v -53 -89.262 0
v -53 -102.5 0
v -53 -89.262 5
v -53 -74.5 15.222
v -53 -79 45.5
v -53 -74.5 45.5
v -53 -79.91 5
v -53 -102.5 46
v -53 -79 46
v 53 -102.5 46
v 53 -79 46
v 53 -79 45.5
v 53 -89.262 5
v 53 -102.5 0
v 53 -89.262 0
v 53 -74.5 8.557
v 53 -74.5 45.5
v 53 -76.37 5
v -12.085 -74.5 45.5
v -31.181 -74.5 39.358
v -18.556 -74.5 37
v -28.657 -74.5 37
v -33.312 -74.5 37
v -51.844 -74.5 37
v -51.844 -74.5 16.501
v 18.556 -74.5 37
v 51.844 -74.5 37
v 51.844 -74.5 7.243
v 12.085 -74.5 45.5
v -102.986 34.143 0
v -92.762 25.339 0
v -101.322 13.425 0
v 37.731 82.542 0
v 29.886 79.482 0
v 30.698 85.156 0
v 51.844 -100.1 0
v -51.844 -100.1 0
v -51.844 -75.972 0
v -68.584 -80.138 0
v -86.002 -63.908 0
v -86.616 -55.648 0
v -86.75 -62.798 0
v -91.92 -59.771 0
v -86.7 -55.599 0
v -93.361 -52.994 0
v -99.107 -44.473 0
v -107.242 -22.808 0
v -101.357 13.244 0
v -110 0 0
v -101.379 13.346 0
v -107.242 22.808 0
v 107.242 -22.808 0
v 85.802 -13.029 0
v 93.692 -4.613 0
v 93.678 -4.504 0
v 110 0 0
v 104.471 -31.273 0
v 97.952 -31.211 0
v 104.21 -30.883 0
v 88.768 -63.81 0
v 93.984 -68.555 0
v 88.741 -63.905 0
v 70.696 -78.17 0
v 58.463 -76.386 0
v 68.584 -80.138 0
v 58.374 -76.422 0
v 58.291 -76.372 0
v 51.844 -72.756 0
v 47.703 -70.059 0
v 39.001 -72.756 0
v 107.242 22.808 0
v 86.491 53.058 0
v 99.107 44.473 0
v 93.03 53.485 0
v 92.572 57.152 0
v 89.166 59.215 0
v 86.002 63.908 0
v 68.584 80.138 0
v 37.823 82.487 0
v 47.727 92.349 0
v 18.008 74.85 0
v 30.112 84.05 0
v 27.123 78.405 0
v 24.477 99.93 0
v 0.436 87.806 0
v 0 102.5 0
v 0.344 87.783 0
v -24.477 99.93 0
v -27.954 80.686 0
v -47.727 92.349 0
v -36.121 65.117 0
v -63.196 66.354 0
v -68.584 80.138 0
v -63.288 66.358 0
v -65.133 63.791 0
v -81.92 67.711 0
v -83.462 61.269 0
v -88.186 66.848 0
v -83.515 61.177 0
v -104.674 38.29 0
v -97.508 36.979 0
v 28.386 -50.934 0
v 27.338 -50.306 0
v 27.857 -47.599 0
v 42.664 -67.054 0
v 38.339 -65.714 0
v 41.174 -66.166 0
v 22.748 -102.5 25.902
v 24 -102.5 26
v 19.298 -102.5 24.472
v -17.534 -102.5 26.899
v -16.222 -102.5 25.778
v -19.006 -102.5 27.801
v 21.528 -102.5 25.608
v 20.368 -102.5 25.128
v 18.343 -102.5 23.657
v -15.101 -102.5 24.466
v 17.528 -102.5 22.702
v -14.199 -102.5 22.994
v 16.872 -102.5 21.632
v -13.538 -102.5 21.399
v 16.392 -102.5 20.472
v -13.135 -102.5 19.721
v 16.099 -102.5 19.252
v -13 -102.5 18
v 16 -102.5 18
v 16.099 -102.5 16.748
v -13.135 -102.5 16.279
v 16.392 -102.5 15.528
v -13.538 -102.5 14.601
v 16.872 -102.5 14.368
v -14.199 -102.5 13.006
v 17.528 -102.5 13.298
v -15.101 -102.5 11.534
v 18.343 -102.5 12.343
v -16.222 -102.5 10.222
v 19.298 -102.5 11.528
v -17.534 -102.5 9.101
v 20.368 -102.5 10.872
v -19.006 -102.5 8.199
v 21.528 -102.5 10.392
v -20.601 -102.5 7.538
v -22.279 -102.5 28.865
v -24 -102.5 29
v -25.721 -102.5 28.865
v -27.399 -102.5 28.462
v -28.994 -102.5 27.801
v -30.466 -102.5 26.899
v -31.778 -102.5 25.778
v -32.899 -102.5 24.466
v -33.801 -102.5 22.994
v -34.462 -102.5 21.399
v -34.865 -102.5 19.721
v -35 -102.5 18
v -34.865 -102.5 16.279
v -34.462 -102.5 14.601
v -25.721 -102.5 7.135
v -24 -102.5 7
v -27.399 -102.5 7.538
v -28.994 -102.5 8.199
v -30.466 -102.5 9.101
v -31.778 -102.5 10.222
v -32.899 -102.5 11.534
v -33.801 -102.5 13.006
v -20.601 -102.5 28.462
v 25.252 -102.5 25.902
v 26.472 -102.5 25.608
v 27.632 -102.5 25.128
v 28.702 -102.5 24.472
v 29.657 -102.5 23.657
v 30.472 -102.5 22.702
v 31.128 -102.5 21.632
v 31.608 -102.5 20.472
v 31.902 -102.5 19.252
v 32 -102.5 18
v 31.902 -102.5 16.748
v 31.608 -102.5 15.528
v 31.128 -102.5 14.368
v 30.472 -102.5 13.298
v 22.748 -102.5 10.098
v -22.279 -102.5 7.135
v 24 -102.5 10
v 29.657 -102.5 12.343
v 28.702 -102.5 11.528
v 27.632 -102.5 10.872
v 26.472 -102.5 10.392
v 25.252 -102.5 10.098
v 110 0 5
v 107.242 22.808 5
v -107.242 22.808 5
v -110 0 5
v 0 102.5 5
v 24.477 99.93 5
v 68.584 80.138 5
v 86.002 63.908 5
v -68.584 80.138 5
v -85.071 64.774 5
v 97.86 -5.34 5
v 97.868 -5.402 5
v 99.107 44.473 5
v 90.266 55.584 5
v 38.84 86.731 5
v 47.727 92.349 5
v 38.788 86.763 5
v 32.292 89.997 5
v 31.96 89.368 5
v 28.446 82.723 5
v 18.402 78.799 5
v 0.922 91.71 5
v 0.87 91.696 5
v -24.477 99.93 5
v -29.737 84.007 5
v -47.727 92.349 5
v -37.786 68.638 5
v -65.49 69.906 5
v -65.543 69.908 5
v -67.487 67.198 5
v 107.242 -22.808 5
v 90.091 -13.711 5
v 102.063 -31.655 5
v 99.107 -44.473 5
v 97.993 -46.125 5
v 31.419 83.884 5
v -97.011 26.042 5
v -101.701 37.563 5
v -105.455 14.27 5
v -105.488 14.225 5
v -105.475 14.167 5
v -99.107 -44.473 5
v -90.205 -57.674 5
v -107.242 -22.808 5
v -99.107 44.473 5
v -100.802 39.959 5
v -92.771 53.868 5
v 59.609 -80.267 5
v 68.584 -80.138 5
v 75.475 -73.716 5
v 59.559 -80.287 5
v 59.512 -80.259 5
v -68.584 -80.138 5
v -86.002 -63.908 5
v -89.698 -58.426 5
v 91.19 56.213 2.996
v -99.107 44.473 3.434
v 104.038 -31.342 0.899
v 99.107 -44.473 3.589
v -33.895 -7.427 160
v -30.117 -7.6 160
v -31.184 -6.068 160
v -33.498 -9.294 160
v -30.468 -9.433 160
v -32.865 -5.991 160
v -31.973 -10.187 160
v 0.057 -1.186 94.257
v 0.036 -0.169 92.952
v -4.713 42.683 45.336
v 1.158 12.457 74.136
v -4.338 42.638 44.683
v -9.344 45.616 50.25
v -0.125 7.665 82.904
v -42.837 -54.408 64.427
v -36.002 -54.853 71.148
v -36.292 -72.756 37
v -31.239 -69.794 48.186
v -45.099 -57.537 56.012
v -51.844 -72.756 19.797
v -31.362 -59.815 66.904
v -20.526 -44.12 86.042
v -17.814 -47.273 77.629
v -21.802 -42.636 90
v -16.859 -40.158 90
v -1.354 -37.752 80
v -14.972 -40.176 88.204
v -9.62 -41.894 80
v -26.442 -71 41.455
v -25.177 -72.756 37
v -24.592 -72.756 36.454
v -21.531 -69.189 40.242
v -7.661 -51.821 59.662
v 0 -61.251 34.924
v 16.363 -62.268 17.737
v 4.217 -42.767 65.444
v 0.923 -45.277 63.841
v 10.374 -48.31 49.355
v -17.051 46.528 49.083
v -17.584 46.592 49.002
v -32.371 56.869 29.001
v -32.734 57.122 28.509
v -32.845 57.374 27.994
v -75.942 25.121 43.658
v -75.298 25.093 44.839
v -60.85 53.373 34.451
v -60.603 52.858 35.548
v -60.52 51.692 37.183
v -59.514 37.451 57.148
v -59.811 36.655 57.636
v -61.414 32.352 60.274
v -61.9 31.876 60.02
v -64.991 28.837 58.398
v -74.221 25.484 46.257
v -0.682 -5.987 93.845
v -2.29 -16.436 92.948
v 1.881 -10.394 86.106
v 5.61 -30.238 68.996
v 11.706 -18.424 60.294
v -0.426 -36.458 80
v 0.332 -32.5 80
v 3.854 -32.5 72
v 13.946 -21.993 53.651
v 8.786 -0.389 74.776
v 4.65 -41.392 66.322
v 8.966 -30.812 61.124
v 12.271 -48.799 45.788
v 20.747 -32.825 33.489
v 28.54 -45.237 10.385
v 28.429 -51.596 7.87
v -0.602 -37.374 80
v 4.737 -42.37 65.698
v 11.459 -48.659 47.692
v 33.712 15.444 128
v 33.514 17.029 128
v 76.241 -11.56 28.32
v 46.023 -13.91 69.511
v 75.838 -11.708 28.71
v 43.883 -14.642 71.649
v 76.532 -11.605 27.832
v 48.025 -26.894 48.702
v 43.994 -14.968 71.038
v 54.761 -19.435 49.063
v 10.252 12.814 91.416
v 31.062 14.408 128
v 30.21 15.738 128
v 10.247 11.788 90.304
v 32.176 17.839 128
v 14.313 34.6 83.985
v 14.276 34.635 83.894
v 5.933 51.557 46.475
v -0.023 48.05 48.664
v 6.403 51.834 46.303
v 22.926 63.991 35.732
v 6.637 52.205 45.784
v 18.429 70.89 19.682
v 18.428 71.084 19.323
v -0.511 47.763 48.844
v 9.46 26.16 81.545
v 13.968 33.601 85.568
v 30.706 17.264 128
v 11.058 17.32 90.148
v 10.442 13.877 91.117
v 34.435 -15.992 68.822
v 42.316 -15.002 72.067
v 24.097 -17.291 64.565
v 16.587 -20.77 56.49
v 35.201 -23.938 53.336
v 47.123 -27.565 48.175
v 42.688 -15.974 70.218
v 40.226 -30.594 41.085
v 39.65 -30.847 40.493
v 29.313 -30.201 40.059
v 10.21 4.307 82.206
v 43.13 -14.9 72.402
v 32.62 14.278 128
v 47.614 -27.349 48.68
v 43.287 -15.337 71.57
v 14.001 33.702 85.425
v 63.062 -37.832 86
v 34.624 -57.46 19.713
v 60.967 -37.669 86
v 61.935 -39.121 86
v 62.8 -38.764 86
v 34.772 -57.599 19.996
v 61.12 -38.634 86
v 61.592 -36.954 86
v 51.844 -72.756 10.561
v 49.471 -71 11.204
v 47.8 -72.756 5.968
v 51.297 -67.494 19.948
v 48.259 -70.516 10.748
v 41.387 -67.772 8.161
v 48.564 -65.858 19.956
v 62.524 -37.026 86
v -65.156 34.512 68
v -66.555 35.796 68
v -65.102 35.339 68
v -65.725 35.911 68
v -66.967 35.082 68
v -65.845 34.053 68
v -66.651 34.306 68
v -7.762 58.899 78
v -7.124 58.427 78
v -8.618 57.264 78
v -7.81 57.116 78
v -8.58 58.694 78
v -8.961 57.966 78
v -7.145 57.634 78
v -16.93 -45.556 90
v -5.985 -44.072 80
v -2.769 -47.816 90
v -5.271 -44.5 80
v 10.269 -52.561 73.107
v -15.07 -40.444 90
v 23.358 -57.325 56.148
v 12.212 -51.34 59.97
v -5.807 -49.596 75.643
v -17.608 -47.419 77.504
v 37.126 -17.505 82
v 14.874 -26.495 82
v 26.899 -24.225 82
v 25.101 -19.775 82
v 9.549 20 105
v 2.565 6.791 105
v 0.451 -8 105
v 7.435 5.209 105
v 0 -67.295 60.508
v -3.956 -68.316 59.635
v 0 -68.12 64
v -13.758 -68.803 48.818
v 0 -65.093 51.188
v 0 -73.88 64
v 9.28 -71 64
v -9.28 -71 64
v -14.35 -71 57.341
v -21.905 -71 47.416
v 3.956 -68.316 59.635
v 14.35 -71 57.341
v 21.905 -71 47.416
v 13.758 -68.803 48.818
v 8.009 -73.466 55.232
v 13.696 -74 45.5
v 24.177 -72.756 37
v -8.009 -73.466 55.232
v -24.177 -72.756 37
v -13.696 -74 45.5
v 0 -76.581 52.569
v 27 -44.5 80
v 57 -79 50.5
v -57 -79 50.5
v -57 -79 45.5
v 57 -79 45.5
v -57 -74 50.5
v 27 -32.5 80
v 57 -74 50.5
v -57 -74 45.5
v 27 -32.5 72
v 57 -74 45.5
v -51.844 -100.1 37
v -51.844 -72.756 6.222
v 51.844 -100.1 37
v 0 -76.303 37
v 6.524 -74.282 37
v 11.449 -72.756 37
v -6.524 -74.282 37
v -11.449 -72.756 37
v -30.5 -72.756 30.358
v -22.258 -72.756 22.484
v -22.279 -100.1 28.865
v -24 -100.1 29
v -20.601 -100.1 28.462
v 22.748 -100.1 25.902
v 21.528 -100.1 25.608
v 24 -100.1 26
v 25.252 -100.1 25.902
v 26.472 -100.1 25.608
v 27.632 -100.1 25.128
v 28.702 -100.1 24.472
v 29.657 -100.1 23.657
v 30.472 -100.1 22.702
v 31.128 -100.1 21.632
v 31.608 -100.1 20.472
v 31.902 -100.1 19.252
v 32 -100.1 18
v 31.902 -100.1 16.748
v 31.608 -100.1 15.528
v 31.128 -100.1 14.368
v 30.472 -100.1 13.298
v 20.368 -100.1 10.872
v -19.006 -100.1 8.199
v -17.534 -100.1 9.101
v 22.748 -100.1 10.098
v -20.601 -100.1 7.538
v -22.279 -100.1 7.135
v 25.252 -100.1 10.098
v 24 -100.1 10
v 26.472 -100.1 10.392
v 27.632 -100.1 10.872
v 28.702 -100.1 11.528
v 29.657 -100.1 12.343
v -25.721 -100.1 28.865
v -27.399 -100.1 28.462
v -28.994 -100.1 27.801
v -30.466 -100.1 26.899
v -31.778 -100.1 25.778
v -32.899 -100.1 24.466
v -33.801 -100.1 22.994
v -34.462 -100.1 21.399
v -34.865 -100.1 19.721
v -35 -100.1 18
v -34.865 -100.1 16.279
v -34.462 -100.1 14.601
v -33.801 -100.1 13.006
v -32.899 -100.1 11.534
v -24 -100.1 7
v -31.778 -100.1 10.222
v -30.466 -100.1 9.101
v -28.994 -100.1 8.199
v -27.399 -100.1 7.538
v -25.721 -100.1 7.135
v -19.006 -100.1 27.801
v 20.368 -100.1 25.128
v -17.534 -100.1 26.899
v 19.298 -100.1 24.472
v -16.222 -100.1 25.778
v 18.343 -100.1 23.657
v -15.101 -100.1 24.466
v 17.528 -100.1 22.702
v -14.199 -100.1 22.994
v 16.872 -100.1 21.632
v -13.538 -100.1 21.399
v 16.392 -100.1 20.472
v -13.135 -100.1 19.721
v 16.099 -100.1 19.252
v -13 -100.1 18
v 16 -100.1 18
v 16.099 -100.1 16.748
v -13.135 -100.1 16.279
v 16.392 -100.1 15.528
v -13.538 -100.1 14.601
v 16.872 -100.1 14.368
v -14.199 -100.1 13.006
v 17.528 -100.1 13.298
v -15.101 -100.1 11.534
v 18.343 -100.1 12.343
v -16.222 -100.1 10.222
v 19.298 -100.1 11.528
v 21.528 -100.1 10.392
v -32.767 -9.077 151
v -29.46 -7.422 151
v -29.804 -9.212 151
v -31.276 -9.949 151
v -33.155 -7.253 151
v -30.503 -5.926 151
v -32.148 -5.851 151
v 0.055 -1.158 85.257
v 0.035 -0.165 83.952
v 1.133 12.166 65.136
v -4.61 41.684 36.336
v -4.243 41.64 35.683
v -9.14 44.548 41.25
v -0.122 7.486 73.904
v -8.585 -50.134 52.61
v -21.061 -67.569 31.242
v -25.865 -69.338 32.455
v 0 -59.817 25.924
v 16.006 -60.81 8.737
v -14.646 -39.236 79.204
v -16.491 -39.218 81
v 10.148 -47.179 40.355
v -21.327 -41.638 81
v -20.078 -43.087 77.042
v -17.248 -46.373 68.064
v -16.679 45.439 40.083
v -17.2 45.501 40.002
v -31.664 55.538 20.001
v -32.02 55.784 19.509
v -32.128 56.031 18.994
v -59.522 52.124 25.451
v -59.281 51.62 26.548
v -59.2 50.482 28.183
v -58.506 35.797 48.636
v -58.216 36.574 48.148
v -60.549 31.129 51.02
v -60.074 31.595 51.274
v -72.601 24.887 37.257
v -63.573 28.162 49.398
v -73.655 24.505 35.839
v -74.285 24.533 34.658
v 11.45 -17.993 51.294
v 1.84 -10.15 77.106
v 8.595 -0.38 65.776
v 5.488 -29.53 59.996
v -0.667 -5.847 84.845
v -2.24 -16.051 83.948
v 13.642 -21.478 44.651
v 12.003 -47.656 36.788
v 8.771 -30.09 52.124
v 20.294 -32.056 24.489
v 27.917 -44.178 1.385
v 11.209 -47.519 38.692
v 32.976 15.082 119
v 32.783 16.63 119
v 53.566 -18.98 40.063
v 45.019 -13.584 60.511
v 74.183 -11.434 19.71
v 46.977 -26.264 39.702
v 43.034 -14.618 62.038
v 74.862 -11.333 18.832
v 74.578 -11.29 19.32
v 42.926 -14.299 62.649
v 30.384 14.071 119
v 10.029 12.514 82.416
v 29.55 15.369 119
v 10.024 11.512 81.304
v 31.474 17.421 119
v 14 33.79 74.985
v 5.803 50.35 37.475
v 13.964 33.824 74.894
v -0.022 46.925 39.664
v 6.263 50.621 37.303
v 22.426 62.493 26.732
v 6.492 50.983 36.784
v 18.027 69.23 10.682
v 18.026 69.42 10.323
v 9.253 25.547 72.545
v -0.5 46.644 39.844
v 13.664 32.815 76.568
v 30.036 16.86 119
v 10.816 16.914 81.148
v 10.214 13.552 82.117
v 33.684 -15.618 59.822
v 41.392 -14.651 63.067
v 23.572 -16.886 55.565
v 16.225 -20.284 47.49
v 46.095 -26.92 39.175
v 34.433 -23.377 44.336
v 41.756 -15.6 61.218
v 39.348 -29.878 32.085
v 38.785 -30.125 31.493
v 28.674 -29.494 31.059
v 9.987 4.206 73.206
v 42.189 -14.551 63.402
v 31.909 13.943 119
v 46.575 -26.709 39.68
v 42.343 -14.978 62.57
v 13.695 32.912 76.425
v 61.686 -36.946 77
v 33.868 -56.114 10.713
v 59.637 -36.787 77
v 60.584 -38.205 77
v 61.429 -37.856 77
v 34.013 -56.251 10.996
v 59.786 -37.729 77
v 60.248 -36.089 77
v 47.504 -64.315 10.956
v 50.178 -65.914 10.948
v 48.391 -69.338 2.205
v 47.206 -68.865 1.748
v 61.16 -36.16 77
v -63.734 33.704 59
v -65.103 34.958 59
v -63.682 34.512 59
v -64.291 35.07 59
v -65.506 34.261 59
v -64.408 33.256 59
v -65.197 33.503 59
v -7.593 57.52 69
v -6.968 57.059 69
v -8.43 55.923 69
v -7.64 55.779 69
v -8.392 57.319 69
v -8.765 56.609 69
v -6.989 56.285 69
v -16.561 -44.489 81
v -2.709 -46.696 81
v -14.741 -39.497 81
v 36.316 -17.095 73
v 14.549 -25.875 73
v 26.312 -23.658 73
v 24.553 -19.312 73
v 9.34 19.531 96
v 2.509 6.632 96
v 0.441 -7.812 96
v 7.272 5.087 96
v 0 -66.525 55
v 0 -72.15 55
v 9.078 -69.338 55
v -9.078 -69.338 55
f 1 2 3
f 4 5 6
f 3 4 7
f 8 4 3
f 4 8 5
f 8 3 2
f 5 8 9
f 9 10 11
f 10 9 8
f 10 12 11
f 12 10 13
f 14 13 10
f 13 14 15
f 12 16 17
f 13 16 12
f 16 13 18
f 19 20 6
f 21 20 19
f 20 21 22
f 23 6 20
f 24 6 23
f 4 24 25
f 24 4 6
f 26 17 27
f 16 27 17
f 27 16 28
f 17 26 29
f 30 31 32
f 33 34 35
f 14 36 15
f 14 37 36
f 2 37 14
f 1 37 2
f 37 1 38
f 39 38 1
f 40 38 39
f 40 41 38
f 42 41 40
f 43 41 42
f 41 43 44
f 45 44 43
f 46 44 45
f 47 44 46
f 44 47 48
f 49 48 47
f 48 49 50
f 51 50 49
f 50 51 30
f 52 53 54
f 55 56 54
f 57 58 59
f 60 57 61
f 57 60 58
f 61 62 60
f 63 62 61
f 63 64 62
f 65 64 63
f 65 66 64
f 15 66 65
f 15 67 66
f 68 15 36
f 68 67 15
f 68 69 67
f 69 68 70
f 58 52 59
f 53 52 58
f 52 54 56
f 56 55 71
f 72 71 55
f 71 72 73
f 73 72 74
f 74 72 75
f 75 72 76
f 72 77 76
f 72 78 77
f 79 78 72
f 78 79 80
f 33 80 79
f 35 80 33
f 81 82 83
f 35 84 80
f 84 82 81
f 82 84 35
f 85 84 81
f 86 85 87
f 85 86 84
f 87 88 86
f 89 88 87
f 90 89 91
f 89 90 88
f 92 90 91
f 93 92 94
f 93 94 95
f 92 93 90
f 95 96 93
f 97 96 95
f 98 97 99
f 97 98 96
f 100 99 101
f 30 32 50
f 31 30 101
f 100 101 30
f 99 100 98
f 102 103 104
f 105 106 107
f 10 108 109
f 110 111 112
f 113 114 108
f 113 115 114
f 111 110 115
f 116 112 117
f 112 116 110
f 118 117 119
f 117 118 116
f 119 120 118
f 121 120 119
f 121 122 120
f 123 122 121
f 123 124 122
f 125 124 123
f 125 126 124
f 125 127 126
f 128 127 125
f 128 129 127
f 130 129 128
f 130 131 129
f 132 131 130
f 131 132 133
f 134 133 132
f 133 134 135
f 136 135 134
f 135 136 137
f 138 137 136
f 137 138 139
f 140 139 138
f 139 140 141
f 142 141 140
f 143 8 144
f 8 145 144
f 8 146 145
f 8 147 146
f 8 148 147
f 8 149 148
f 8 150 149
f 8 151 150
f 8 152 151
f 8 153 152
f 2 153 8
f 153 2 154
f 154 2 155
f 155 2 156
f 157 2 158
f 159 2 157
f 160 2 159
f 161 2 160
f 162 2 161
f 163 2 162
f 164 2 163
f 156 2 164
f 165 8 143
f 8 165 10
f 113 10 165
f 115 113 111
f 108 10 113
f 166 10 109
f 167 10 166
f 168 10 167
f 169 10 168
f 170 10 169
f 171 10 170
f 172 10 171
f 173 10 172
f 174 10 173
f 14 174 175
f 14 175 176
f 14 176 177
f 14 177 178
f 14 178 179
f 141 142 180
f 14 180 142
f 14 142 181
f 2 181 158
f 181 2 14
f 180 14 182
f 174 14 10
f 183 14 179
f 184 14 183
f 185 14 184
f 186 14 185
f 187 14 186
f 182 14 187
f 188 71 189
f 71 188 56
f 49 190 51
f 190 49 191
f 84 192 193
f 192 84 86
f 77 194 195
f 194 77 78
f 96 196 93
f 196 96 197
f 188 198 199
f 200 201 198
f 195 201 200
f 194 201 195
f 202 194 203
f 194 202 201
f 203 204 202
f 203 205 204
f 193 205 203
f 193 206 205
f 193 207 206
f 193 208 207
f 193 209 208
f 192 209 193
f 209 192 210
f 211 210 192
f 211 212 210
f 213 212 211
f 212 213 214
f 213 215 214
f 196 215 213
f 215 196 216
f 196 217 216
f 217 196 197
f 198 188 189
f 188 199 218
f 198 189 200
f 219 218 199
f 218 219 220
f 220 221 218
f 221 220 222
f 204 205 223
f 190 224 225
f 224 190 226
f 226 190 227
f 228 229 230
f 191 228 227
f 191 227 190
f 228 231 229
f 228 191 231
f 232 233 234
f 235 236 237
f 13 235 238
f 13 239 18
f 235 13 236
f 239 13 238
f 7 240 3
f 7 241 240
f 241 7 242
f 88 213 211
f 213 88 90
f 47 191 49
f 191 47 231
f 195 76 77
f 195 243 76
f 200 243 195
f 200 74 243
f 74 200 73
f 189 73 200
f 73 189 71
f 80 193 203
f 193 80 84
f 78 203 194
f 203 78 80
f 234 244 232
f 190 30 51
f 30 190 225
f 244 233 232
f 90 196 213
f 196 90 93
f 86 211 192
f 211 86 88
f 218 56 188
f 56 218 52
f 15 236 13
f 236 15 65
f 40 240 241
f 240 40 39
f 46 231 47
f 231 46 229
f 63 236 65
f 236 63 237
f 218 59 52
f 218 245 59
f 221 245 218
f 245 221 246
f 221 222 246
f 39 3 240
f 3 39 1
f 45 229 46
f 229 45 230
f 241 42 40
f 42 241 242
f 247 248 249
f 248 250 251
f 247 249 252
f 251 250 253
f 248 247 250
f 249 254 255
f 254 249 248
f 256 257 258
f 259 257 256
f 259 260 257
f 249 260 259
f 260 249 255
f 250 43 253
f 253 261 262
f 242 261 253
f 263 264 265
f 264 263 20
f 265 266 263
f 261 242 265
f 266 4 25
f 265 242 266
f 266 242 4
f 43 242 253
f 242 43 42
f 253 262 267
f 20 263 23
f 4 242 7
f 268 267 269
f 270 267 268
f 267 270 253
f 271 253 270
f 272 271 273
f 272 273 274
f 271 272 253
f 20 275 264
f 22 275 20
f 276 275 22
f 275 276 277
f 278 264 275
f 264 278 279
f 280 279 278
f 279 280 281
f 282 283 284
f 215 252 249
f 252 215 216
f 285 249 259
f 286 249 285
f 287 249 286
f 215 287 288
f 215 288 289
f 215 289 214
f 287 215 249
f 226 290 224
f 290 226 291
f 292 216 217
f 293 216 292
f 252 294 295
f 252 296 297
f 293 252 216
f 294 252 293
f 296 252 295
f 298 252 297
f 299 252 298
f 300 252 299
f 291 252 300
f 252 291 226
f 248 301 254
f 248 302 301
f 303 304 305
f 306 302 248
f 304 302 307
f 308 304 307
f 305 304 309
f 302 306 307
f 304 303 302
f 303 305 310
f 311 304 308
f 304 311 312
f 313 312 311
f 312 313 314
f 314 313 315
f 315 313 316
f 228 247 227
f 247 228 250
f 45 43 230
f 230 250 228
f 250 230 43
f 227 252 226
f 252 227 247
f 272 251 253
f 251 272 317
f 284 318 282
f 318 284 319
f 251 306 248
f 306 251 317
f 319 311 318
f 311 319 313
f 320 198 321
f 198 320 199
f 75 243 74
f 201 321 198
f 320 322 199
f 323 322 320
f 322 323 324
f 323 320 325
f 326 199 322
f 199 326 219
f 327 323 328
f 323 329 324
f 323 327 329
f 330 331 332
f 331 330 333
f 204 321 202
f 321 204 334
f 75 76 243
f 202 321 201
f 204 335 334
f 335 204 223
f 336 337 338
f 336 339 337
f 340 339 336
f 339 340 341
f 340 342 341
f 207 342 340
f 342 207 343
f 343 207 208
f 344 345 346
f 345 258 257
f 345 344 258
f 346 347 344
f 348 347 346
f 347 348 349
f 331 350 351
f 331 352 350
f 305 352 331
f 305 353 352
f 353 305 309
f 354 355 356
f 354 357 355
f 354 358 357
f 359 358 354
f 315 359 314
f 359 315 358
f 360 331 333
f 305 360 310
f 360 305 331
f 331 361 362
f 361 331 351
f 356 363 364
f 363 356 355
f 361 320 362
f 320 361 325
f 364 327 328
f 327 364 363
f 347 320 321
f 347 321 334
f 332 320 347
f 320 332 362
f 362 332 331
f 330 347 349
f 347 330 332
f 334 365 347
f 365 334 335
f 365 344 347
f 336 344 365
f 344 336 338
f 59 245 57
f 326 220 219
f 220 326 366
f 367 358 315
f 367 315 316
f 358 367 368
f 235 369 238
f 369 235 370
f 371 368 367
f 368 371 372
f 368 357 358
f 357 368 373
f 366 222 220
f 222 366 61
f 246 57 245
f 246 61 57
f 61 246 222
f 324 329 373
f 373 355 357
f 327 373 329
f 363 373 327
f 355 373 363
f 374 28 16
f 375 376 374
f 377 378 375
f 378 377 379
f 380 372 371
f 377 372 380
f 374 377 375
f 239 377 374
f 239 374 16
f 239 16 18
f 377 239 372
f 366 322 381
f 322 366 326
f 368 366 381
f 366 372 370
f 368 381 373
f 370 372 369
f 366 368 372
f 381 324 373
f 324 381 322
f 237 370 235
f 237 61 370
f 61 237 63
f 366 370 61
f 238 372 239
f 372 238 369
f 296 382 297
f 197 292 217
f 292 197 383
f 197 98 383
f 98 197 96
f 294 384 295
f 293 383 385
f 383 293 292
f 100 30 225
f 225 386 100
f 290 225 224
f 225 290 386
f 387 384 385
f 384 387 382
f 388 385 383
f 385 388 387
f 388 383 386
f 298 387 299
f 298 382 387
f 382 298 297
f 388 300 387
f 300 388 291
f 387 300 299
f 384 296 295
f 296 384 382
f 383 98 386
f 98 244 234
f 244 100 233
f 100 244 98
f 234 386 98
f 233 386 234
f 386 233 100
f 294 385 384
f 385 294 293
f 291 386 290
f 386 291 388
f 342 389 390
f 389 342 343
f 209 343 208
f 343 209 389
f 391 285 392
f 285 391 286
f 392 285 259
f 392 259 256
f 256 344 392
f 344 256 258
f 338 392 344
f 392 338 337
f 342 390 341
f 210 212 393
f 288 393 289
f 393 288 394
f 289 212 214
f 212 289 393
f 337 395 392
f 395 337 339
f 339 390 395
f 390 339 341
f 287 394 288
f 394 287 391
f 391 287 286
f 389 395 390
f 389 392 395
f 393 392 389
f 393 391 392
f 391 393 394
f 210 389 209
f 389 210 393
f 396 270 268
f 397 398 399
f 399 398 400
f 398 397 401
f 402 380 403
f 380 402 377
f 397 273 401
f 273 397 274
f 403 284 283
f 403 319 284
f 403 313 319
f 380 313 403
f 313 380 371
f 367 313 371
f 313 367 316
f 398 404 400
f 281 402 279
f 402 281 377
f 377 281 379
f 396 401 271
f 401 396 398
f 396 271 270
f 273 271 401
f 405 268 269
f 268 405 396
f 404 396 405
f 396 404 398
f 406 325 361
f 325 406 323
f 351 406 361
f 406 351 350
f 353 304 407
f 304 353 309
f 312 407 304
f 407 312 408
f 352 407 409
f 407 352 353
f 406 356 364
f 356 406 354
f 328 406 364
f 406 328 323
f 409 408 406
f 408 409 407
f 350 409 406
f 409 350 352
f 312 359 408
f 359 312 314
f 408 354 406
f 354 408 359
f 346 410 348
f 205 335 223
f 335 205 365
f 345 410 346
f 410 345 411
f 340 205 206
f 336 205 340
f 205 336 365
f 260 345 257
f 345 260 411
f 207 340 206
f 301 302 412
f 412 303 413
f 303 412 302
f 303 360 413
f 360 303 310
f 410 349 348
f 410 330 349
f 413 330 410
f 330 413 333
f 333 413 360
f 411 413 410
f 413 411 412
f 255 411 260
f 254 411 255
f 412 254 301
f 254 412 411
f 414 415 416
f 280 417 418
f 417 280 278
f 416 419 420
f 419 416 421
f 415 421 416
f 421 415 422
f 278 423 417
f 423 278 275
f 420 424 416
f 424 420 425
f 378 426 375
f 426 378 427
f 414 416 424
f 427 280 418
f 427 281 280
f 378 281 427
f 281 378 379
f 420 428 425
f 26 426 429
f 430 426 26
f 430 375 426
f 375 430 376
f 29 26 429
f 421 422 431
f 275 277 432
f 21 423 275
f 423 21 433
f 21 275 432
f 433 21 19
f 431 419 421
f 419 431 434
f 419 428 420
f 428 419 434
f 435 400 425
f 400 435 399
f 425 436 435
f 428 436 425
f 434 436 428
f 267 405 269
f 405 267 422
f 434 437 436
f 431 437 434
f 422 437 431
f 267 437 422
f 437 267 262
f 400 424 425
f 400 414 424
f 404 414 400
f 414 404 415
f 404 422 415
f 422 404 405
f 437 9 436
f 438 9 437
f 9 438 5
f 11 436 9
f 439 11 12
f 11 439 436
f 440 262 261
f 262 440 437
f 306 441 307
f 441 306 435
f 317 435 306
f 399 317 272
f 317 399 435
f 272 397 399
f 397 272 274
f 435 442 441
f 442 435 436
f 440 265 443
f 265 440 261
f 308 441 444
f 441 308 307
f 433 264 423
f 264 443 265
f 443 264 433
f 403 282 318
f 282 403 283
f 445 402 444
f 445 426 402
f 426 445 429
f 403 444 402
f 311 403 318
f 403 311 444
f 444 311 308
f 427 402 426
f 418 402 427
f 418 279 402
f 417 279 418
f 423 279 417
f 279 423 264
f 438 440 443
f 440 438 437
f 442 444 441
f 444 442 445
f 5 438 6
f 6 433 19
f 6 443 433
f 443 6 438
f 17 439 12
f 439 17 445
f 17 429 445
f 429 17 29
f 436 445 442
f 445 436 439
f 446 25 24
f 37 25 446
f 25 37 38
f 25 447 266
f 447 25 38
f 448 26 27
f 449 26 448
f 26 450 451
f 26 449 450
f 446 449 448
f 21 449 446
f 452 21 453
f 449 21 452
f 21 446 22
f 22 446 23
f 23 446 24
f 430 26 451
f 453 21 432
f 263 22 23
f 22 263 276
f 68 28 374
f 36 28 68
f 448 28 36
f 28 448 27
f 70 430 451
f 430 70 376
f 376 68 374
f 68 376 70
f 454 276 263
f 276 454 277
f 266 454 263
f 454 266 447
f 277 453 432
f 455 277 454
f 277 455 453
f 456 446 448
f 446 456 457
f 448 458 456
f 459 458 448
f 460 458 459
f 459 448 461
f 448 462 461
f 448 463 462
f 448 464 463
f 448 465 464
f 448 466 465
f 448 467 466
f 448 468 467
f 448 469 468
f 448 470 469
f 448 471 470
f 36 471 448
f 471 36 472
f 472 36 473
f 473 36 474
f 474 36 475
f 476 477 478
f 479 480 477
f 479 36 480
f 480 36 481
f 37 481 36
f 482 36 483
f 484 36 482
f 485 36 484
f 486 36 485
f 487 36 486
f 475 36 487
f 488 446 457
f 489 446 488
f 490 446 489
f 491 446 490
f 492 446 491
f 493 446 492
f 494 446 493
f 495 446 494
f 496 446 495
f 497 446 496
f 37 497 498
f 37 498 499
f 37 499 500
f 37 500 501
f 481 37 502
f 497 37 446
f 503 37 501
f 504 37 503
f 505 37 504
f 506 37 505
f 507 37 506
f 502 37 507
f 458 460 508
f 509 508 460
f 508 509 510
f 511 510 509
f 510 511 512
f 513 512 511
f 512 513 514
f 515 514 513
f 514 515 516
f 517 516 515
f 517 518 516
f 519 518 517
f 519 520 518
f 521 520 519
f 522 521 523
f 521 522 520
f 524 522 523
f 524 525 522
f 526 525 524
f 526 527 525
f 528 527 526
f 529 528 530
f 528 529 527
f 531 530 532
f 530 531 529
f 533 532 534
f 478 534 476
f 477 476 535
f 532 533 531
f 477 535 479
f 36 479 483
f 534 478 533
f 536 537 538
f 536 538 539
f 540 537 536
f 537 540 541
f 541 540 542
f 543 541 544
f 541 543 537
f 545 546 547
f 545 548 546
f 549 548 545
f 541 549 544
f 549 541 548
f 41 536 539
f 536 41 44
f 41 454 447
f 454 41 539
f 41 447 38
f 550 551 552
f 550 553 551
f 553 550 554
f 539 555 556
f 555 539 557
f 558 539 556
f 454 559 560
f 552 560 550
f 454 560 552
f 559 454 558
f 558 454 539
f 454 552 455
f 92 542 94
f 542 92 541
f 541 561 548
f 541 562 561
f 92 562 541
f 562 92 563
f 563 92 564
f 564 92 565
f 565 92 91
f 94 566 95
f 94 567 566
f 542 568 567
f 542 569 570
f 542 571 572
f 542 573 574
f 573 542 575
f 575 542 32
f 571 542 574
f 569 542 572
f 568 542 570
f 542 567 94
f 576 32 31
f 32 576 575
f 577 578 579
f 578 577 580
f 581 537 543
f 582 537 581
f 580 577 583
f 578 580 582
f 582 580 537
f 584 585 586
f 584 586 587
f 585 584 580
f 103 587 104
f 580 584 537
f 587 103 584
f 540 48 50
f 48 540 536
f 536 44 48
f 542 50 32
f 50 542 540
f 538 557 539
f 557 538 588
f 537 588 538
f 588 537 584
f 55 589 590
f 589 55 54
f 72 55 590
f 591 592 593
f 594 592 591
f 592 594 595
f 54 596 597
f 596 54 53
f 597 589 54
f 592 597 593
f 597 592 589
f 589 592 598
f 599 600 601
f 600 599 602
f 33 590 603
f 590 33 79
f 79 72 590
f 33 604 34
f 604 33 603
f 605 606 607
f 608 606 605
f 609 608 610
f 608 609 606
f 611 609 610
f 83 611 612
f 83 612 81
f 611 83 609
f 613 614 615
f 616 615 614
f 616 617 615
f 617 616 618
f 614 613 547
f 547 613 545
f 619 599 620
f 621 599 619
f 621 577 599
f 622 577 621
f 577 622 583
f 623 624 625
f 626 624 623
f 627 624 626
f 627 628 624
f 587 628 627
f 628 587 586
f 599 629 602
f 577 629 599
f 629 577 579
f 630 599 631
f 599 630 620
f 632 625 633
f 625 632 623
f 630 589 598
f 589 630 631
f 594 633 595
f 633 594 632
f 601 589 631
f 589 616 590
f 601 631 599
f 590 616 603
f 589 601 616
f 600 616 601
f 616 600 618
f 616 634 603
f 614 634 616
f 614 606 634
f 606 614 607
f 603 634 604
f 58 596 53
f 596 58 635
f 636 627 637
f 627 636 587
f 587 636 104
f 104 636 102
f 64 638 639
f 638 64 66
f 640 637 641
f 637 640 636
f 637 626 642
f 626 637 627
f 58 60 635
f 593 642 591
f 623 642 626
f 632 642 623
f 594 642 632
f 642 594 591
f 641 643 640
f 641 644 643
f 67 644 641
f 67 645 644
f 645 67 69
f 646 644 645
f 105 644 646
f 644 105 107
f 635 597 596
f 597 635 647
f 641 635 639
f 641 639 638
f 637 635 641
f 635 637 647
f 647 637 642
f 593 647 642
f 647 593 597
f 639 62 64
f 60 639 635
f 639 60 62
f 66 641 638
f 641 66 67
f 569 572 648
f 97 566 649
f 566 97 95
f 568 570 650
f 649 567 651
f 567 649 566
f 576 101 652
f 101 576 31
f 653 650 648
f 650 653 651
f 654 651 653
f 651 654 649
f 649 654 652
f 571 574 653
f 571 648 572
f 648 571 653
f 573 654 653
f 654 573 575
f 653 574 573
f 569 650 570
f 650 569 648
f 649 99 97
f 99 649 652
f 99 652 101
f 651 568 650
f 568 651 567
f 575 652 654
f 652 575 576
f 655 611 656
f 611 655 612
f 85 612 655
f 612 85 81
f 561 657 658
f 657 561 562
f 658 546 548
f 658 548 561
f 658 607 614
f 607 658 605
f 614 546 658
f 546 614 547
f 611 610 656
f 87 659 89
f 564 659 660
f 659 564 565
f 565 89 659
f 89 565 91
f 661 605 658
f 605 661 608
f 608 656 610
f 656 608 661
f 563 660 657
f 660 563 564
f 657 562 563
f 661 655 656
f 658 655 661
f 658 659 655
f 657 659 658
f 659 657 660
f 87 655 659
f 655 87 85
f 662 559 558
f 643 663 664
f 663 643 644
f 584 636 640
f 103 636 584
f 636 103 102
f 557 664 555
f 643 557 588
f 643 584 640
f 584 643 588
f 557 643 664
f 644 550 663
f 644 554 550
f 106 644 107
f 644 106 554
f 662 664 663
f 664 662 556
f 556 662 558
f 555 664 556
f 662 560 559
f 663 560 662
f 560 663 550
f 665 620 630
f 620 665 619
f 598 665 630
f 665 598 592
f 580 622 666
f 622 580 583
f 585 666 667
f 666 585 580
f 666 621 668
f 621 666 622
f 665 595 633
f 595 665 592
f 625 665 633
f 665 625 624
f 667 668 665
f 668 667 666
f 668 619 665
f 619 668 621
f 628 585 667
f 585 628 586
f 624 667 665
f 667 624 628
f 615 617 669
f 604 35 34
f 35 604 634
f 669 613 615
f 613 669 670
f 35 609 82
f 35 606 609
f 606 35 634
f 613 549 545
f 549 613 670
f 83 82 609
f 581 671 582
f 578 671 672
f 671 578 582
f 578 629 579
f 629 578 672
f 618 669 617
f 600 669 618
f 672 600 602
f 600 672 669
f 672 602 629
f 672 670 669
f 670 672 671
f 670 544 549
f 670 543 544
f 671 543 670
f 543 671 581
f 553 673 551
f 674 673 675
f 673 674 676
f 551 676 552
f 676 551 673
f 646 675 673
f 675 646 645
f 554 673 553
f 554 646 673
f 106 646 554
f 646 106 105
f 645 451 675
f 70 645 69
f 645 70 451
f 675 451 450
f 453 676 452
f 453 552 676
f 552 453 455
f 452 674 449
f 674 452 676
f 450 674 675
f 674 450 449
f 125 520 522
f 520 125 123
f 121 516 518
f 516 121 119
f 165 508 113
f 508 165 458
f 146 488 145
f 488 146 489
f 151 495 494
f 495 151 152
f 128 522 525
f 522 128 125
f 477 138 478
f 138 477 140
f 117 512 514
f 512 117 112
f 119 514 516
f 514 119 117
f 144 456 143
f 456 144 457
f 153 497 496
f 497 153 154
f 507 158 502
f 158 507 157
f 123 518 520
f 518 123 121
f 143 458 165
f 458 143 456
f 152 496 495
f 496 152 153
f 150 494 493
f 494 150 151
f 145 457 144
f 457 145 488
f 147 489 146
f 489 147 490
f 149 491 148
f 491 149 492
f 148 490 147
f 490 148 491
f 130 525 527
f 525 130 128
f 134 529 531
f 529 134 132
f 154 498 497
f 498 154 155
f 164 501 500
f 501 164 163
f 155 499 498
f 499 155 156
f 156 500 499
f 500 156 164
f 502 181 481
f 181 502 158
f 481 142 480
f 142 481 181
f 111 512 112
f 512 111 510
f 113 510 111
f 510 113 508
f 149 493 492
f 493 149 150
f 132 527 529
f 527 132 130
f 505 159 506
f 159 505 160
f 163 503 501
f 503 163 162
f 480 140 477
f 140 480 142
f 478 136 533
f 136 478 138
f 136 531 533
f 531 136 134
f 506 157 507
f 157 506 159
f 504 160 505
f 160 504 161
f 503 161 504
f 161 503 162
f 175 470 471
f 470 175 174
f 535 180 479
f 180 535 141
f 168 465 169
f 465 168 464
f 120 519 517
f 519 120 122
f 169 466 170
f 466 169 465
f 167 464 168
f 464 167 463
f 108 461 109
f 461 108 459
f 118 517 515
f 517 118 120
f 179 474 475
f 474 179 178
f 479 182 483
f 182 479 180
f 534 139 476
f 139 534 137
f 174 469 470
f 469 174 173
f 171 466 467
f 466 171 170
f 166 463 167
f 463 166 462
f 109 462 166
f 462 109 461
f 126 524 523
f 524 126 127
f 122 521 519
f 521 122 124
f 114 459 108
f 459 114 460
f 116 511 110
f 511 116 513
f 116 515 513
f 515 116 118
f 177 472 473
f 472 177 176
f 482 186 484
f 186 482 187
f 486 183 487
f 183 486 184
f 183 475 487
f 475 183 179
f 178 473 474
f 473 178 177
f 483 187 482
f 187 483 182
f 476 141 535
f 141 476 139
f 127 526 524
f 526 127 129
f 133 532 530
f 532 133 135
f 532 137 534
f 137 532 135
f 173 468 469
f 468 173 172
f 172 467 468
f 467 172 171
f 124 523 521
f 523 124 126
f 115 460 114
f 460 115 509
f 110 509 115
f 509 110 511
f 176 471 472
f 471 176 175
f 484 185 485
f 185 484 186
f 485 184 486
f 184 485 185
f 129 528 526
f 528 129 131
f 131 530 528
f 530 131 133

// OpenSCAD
// Hollow low-poly mountain cover for housing DCC-EX electronics on one HexTrack tile.
// Print as a standalone open-bottom shell, then place it over the electronics.

/* [Output] */
show_build_volume = false; // [true, false]
show_hex_tile_footprint = false; // [true, false]

/* [Overall Size] */
base_width = 220; // [120:1:232]
base_depth = 205; // [120:1:232]
mountain_height = 160; // [80:1:220]
wall_thickness = 2.4; // [1.2:0.1:5]
base_rim_height = 5; // [0:0.5:15]

/* [Cable Exits] */
cable_side = "front"; // [front, back, left, right]
mains_hole_diameter = 22; // [10:1:35]
low_voltage_hole_diameter = 16; // [6:1:30]
cable_hole_z = 18; // [8:1:45]
cable_hole_spacing = 48; // [25:1:90]
cable_panel_width = 106; // [60:1:150]
cable_panel_height = 46; // [28:1:70]
cable_panel_depth = 28; // [12:1:50]

/* [Mountain Shape] */
facet_count = 7; // [5:1:12]

/* [Reference] */
hex_flat_to_flat = 248;
printer_volume = 232;

function side_angle(name) =
    name == "front" ? 0 :
    name == "back" ? 180 :
    name == "left" ? -90 : 90;

module faceted_peak(x, y, rx, ry, h, rot = 0) {
    translate([x, y, 0])
        rotate([0, 0, rot])
            scale([rx, ry, 1])
                cylinder(d1 = 2, d2 = 0.05, h = h, $fn = facet_count);
}

module faceted_ridge(x, y, sx, sy, h, rot = 0) {
    translate([x, y, 0])
        rotate([0, 0, rot])
            scale([sx, sy, 1])
                cylinder(d1 = 2, d2 = 0.32, h = h, $fn = 4);
}

module cable_exit_panel() {
    rotate([0, 0, side_angle(cable_side)])
        translate([0, -base_depth / 2 + cable_panel_depth / 2, cable_panel_height / 2])
            intersection() {
                cube([cable_panel_width, cable_panel_depth, cable_panel_height], center = true);
                translate([0, 0, -cable_panel_height / 2])
                    scale([base_width / 2, base_depth / 2, 1])
                        cylinder(d = 2, h = cable_panel_height, $fn = facet_count * 4);
            }
}

module service_face_cover() {
    rotate([0, 0, side_angle(cable_side)])
        hull() {
            translate([0, -base_depth / 2 + cable_panel_depth - 2, cable_panel_height + 2])
                cube([cable_panel_width + 8, 5, 5], center = true);
            translate([0, -base_depth / 2 + cable_panel_depth + 36, cable_panel_height + 30])
                cube([54, 12, 8], center = true);
        }
}

module mountain_core() {
    union() {
        scale([base_width / 2, base_depth / 2, 1])
            cylinder(d = 2, h = base_rim_height, $fn = facet_count * 4);

        cable_exit_panel();

        // Overlapping asymmetric peaks create a mountain range instead of a cone.
        faceted_peak(-32, -8, 77, 88, mountain_height, 12);
        faceted_peak(32, 16, 72, 74, 128, -18);
        faceted_peak(62, -38, 43, 45, 86, 9);
        faceted_peak(-66, 35, 39, 38, 68, -30);
        faceted_peak(-8, 58, 39, 36, 78, 26);

        // Low angular ridges break up the sides and make broad print-friendly slopes.
        faceted_ridge(-16, -43, 88, 17, 90, -20);
        faceted_ridge(26, -22, 75, 15, 82, 22);
        faceted_ridge(-50, 18, 65, 14, 72, 40);
        faceted_ridge(45, 42, 56, 13, 66, -35);
        faceted_ridge(5, 6, 92, 16, 105, 72);

        // Low overburden helps the service face read as part of the hill.
        faceted_ridge(0, -71, 58, 18, 64, 0);
    }
}

module mountain_mass() {
    union() {
        mountain_core();
        service_face_cover();
    }
}

module hollow_cutout() {
    translate([0, 0, -base_rim_height - 4])
        scale([
            (base_width - wall_thickness * 2) / base_width,
            (base_depth - wall_thickness * 2) / base_depth,
            1
        ])
            mountain_core();
}

module cable_hole(x_offset, diameter) {
    rotate([0, 0, side_angle(cable_side)])
        translate([x_offset, -base_depth / 2 - 3, cable_hole_z])
            rotate([90, 0, 0])
                cylinder(d = diameter, h = wall_thickness + 42, center = true, $fn = 40);
}

module cable_holes() {
    cable_hole(-cable_hole_spacing / 2, mains_hole_diameter);
    cable_hole(cable_hole_spacing / 2, low_voltage_hole_diameter);
}

module bottom_opening() {
    translate([0, 0, -base_rim_height - 20])
        cube([base_width * 2, base_depth * 2, 40], center = true);
}

module hollow_mountain_cover() {
    difference() {
        mountain_mass();
        hollow_cutout();
        cable_holes();
        bottom_opening();
    }
}

module hex_tile_footprint() {
    hex_radius = hex_flat_to_flat / sqrt(3);
    points = [for (i = [0:5]) [hex_radius * cos(60 * i), hex_radius * sin(60 * i)]];

    color([0.2, 0.5, 0.9, 0.18])
        translate([0, 0, -0.2])
            linear_extrude(height = 0.2)
                polygon(points);
}

module build_volume_preview() {
    color([1, 0.4, 0.1, 0.12])
        translate([0, 0, printer_volume / 2])
            cube([printer_volume, printer_volume, printer_volume], center = true);
}

if (show_hex_tile_footprint)
    hex_tile_footprint();

if (show_build_volume)
    build_volume_preview();

hollow_mountain_cover();
